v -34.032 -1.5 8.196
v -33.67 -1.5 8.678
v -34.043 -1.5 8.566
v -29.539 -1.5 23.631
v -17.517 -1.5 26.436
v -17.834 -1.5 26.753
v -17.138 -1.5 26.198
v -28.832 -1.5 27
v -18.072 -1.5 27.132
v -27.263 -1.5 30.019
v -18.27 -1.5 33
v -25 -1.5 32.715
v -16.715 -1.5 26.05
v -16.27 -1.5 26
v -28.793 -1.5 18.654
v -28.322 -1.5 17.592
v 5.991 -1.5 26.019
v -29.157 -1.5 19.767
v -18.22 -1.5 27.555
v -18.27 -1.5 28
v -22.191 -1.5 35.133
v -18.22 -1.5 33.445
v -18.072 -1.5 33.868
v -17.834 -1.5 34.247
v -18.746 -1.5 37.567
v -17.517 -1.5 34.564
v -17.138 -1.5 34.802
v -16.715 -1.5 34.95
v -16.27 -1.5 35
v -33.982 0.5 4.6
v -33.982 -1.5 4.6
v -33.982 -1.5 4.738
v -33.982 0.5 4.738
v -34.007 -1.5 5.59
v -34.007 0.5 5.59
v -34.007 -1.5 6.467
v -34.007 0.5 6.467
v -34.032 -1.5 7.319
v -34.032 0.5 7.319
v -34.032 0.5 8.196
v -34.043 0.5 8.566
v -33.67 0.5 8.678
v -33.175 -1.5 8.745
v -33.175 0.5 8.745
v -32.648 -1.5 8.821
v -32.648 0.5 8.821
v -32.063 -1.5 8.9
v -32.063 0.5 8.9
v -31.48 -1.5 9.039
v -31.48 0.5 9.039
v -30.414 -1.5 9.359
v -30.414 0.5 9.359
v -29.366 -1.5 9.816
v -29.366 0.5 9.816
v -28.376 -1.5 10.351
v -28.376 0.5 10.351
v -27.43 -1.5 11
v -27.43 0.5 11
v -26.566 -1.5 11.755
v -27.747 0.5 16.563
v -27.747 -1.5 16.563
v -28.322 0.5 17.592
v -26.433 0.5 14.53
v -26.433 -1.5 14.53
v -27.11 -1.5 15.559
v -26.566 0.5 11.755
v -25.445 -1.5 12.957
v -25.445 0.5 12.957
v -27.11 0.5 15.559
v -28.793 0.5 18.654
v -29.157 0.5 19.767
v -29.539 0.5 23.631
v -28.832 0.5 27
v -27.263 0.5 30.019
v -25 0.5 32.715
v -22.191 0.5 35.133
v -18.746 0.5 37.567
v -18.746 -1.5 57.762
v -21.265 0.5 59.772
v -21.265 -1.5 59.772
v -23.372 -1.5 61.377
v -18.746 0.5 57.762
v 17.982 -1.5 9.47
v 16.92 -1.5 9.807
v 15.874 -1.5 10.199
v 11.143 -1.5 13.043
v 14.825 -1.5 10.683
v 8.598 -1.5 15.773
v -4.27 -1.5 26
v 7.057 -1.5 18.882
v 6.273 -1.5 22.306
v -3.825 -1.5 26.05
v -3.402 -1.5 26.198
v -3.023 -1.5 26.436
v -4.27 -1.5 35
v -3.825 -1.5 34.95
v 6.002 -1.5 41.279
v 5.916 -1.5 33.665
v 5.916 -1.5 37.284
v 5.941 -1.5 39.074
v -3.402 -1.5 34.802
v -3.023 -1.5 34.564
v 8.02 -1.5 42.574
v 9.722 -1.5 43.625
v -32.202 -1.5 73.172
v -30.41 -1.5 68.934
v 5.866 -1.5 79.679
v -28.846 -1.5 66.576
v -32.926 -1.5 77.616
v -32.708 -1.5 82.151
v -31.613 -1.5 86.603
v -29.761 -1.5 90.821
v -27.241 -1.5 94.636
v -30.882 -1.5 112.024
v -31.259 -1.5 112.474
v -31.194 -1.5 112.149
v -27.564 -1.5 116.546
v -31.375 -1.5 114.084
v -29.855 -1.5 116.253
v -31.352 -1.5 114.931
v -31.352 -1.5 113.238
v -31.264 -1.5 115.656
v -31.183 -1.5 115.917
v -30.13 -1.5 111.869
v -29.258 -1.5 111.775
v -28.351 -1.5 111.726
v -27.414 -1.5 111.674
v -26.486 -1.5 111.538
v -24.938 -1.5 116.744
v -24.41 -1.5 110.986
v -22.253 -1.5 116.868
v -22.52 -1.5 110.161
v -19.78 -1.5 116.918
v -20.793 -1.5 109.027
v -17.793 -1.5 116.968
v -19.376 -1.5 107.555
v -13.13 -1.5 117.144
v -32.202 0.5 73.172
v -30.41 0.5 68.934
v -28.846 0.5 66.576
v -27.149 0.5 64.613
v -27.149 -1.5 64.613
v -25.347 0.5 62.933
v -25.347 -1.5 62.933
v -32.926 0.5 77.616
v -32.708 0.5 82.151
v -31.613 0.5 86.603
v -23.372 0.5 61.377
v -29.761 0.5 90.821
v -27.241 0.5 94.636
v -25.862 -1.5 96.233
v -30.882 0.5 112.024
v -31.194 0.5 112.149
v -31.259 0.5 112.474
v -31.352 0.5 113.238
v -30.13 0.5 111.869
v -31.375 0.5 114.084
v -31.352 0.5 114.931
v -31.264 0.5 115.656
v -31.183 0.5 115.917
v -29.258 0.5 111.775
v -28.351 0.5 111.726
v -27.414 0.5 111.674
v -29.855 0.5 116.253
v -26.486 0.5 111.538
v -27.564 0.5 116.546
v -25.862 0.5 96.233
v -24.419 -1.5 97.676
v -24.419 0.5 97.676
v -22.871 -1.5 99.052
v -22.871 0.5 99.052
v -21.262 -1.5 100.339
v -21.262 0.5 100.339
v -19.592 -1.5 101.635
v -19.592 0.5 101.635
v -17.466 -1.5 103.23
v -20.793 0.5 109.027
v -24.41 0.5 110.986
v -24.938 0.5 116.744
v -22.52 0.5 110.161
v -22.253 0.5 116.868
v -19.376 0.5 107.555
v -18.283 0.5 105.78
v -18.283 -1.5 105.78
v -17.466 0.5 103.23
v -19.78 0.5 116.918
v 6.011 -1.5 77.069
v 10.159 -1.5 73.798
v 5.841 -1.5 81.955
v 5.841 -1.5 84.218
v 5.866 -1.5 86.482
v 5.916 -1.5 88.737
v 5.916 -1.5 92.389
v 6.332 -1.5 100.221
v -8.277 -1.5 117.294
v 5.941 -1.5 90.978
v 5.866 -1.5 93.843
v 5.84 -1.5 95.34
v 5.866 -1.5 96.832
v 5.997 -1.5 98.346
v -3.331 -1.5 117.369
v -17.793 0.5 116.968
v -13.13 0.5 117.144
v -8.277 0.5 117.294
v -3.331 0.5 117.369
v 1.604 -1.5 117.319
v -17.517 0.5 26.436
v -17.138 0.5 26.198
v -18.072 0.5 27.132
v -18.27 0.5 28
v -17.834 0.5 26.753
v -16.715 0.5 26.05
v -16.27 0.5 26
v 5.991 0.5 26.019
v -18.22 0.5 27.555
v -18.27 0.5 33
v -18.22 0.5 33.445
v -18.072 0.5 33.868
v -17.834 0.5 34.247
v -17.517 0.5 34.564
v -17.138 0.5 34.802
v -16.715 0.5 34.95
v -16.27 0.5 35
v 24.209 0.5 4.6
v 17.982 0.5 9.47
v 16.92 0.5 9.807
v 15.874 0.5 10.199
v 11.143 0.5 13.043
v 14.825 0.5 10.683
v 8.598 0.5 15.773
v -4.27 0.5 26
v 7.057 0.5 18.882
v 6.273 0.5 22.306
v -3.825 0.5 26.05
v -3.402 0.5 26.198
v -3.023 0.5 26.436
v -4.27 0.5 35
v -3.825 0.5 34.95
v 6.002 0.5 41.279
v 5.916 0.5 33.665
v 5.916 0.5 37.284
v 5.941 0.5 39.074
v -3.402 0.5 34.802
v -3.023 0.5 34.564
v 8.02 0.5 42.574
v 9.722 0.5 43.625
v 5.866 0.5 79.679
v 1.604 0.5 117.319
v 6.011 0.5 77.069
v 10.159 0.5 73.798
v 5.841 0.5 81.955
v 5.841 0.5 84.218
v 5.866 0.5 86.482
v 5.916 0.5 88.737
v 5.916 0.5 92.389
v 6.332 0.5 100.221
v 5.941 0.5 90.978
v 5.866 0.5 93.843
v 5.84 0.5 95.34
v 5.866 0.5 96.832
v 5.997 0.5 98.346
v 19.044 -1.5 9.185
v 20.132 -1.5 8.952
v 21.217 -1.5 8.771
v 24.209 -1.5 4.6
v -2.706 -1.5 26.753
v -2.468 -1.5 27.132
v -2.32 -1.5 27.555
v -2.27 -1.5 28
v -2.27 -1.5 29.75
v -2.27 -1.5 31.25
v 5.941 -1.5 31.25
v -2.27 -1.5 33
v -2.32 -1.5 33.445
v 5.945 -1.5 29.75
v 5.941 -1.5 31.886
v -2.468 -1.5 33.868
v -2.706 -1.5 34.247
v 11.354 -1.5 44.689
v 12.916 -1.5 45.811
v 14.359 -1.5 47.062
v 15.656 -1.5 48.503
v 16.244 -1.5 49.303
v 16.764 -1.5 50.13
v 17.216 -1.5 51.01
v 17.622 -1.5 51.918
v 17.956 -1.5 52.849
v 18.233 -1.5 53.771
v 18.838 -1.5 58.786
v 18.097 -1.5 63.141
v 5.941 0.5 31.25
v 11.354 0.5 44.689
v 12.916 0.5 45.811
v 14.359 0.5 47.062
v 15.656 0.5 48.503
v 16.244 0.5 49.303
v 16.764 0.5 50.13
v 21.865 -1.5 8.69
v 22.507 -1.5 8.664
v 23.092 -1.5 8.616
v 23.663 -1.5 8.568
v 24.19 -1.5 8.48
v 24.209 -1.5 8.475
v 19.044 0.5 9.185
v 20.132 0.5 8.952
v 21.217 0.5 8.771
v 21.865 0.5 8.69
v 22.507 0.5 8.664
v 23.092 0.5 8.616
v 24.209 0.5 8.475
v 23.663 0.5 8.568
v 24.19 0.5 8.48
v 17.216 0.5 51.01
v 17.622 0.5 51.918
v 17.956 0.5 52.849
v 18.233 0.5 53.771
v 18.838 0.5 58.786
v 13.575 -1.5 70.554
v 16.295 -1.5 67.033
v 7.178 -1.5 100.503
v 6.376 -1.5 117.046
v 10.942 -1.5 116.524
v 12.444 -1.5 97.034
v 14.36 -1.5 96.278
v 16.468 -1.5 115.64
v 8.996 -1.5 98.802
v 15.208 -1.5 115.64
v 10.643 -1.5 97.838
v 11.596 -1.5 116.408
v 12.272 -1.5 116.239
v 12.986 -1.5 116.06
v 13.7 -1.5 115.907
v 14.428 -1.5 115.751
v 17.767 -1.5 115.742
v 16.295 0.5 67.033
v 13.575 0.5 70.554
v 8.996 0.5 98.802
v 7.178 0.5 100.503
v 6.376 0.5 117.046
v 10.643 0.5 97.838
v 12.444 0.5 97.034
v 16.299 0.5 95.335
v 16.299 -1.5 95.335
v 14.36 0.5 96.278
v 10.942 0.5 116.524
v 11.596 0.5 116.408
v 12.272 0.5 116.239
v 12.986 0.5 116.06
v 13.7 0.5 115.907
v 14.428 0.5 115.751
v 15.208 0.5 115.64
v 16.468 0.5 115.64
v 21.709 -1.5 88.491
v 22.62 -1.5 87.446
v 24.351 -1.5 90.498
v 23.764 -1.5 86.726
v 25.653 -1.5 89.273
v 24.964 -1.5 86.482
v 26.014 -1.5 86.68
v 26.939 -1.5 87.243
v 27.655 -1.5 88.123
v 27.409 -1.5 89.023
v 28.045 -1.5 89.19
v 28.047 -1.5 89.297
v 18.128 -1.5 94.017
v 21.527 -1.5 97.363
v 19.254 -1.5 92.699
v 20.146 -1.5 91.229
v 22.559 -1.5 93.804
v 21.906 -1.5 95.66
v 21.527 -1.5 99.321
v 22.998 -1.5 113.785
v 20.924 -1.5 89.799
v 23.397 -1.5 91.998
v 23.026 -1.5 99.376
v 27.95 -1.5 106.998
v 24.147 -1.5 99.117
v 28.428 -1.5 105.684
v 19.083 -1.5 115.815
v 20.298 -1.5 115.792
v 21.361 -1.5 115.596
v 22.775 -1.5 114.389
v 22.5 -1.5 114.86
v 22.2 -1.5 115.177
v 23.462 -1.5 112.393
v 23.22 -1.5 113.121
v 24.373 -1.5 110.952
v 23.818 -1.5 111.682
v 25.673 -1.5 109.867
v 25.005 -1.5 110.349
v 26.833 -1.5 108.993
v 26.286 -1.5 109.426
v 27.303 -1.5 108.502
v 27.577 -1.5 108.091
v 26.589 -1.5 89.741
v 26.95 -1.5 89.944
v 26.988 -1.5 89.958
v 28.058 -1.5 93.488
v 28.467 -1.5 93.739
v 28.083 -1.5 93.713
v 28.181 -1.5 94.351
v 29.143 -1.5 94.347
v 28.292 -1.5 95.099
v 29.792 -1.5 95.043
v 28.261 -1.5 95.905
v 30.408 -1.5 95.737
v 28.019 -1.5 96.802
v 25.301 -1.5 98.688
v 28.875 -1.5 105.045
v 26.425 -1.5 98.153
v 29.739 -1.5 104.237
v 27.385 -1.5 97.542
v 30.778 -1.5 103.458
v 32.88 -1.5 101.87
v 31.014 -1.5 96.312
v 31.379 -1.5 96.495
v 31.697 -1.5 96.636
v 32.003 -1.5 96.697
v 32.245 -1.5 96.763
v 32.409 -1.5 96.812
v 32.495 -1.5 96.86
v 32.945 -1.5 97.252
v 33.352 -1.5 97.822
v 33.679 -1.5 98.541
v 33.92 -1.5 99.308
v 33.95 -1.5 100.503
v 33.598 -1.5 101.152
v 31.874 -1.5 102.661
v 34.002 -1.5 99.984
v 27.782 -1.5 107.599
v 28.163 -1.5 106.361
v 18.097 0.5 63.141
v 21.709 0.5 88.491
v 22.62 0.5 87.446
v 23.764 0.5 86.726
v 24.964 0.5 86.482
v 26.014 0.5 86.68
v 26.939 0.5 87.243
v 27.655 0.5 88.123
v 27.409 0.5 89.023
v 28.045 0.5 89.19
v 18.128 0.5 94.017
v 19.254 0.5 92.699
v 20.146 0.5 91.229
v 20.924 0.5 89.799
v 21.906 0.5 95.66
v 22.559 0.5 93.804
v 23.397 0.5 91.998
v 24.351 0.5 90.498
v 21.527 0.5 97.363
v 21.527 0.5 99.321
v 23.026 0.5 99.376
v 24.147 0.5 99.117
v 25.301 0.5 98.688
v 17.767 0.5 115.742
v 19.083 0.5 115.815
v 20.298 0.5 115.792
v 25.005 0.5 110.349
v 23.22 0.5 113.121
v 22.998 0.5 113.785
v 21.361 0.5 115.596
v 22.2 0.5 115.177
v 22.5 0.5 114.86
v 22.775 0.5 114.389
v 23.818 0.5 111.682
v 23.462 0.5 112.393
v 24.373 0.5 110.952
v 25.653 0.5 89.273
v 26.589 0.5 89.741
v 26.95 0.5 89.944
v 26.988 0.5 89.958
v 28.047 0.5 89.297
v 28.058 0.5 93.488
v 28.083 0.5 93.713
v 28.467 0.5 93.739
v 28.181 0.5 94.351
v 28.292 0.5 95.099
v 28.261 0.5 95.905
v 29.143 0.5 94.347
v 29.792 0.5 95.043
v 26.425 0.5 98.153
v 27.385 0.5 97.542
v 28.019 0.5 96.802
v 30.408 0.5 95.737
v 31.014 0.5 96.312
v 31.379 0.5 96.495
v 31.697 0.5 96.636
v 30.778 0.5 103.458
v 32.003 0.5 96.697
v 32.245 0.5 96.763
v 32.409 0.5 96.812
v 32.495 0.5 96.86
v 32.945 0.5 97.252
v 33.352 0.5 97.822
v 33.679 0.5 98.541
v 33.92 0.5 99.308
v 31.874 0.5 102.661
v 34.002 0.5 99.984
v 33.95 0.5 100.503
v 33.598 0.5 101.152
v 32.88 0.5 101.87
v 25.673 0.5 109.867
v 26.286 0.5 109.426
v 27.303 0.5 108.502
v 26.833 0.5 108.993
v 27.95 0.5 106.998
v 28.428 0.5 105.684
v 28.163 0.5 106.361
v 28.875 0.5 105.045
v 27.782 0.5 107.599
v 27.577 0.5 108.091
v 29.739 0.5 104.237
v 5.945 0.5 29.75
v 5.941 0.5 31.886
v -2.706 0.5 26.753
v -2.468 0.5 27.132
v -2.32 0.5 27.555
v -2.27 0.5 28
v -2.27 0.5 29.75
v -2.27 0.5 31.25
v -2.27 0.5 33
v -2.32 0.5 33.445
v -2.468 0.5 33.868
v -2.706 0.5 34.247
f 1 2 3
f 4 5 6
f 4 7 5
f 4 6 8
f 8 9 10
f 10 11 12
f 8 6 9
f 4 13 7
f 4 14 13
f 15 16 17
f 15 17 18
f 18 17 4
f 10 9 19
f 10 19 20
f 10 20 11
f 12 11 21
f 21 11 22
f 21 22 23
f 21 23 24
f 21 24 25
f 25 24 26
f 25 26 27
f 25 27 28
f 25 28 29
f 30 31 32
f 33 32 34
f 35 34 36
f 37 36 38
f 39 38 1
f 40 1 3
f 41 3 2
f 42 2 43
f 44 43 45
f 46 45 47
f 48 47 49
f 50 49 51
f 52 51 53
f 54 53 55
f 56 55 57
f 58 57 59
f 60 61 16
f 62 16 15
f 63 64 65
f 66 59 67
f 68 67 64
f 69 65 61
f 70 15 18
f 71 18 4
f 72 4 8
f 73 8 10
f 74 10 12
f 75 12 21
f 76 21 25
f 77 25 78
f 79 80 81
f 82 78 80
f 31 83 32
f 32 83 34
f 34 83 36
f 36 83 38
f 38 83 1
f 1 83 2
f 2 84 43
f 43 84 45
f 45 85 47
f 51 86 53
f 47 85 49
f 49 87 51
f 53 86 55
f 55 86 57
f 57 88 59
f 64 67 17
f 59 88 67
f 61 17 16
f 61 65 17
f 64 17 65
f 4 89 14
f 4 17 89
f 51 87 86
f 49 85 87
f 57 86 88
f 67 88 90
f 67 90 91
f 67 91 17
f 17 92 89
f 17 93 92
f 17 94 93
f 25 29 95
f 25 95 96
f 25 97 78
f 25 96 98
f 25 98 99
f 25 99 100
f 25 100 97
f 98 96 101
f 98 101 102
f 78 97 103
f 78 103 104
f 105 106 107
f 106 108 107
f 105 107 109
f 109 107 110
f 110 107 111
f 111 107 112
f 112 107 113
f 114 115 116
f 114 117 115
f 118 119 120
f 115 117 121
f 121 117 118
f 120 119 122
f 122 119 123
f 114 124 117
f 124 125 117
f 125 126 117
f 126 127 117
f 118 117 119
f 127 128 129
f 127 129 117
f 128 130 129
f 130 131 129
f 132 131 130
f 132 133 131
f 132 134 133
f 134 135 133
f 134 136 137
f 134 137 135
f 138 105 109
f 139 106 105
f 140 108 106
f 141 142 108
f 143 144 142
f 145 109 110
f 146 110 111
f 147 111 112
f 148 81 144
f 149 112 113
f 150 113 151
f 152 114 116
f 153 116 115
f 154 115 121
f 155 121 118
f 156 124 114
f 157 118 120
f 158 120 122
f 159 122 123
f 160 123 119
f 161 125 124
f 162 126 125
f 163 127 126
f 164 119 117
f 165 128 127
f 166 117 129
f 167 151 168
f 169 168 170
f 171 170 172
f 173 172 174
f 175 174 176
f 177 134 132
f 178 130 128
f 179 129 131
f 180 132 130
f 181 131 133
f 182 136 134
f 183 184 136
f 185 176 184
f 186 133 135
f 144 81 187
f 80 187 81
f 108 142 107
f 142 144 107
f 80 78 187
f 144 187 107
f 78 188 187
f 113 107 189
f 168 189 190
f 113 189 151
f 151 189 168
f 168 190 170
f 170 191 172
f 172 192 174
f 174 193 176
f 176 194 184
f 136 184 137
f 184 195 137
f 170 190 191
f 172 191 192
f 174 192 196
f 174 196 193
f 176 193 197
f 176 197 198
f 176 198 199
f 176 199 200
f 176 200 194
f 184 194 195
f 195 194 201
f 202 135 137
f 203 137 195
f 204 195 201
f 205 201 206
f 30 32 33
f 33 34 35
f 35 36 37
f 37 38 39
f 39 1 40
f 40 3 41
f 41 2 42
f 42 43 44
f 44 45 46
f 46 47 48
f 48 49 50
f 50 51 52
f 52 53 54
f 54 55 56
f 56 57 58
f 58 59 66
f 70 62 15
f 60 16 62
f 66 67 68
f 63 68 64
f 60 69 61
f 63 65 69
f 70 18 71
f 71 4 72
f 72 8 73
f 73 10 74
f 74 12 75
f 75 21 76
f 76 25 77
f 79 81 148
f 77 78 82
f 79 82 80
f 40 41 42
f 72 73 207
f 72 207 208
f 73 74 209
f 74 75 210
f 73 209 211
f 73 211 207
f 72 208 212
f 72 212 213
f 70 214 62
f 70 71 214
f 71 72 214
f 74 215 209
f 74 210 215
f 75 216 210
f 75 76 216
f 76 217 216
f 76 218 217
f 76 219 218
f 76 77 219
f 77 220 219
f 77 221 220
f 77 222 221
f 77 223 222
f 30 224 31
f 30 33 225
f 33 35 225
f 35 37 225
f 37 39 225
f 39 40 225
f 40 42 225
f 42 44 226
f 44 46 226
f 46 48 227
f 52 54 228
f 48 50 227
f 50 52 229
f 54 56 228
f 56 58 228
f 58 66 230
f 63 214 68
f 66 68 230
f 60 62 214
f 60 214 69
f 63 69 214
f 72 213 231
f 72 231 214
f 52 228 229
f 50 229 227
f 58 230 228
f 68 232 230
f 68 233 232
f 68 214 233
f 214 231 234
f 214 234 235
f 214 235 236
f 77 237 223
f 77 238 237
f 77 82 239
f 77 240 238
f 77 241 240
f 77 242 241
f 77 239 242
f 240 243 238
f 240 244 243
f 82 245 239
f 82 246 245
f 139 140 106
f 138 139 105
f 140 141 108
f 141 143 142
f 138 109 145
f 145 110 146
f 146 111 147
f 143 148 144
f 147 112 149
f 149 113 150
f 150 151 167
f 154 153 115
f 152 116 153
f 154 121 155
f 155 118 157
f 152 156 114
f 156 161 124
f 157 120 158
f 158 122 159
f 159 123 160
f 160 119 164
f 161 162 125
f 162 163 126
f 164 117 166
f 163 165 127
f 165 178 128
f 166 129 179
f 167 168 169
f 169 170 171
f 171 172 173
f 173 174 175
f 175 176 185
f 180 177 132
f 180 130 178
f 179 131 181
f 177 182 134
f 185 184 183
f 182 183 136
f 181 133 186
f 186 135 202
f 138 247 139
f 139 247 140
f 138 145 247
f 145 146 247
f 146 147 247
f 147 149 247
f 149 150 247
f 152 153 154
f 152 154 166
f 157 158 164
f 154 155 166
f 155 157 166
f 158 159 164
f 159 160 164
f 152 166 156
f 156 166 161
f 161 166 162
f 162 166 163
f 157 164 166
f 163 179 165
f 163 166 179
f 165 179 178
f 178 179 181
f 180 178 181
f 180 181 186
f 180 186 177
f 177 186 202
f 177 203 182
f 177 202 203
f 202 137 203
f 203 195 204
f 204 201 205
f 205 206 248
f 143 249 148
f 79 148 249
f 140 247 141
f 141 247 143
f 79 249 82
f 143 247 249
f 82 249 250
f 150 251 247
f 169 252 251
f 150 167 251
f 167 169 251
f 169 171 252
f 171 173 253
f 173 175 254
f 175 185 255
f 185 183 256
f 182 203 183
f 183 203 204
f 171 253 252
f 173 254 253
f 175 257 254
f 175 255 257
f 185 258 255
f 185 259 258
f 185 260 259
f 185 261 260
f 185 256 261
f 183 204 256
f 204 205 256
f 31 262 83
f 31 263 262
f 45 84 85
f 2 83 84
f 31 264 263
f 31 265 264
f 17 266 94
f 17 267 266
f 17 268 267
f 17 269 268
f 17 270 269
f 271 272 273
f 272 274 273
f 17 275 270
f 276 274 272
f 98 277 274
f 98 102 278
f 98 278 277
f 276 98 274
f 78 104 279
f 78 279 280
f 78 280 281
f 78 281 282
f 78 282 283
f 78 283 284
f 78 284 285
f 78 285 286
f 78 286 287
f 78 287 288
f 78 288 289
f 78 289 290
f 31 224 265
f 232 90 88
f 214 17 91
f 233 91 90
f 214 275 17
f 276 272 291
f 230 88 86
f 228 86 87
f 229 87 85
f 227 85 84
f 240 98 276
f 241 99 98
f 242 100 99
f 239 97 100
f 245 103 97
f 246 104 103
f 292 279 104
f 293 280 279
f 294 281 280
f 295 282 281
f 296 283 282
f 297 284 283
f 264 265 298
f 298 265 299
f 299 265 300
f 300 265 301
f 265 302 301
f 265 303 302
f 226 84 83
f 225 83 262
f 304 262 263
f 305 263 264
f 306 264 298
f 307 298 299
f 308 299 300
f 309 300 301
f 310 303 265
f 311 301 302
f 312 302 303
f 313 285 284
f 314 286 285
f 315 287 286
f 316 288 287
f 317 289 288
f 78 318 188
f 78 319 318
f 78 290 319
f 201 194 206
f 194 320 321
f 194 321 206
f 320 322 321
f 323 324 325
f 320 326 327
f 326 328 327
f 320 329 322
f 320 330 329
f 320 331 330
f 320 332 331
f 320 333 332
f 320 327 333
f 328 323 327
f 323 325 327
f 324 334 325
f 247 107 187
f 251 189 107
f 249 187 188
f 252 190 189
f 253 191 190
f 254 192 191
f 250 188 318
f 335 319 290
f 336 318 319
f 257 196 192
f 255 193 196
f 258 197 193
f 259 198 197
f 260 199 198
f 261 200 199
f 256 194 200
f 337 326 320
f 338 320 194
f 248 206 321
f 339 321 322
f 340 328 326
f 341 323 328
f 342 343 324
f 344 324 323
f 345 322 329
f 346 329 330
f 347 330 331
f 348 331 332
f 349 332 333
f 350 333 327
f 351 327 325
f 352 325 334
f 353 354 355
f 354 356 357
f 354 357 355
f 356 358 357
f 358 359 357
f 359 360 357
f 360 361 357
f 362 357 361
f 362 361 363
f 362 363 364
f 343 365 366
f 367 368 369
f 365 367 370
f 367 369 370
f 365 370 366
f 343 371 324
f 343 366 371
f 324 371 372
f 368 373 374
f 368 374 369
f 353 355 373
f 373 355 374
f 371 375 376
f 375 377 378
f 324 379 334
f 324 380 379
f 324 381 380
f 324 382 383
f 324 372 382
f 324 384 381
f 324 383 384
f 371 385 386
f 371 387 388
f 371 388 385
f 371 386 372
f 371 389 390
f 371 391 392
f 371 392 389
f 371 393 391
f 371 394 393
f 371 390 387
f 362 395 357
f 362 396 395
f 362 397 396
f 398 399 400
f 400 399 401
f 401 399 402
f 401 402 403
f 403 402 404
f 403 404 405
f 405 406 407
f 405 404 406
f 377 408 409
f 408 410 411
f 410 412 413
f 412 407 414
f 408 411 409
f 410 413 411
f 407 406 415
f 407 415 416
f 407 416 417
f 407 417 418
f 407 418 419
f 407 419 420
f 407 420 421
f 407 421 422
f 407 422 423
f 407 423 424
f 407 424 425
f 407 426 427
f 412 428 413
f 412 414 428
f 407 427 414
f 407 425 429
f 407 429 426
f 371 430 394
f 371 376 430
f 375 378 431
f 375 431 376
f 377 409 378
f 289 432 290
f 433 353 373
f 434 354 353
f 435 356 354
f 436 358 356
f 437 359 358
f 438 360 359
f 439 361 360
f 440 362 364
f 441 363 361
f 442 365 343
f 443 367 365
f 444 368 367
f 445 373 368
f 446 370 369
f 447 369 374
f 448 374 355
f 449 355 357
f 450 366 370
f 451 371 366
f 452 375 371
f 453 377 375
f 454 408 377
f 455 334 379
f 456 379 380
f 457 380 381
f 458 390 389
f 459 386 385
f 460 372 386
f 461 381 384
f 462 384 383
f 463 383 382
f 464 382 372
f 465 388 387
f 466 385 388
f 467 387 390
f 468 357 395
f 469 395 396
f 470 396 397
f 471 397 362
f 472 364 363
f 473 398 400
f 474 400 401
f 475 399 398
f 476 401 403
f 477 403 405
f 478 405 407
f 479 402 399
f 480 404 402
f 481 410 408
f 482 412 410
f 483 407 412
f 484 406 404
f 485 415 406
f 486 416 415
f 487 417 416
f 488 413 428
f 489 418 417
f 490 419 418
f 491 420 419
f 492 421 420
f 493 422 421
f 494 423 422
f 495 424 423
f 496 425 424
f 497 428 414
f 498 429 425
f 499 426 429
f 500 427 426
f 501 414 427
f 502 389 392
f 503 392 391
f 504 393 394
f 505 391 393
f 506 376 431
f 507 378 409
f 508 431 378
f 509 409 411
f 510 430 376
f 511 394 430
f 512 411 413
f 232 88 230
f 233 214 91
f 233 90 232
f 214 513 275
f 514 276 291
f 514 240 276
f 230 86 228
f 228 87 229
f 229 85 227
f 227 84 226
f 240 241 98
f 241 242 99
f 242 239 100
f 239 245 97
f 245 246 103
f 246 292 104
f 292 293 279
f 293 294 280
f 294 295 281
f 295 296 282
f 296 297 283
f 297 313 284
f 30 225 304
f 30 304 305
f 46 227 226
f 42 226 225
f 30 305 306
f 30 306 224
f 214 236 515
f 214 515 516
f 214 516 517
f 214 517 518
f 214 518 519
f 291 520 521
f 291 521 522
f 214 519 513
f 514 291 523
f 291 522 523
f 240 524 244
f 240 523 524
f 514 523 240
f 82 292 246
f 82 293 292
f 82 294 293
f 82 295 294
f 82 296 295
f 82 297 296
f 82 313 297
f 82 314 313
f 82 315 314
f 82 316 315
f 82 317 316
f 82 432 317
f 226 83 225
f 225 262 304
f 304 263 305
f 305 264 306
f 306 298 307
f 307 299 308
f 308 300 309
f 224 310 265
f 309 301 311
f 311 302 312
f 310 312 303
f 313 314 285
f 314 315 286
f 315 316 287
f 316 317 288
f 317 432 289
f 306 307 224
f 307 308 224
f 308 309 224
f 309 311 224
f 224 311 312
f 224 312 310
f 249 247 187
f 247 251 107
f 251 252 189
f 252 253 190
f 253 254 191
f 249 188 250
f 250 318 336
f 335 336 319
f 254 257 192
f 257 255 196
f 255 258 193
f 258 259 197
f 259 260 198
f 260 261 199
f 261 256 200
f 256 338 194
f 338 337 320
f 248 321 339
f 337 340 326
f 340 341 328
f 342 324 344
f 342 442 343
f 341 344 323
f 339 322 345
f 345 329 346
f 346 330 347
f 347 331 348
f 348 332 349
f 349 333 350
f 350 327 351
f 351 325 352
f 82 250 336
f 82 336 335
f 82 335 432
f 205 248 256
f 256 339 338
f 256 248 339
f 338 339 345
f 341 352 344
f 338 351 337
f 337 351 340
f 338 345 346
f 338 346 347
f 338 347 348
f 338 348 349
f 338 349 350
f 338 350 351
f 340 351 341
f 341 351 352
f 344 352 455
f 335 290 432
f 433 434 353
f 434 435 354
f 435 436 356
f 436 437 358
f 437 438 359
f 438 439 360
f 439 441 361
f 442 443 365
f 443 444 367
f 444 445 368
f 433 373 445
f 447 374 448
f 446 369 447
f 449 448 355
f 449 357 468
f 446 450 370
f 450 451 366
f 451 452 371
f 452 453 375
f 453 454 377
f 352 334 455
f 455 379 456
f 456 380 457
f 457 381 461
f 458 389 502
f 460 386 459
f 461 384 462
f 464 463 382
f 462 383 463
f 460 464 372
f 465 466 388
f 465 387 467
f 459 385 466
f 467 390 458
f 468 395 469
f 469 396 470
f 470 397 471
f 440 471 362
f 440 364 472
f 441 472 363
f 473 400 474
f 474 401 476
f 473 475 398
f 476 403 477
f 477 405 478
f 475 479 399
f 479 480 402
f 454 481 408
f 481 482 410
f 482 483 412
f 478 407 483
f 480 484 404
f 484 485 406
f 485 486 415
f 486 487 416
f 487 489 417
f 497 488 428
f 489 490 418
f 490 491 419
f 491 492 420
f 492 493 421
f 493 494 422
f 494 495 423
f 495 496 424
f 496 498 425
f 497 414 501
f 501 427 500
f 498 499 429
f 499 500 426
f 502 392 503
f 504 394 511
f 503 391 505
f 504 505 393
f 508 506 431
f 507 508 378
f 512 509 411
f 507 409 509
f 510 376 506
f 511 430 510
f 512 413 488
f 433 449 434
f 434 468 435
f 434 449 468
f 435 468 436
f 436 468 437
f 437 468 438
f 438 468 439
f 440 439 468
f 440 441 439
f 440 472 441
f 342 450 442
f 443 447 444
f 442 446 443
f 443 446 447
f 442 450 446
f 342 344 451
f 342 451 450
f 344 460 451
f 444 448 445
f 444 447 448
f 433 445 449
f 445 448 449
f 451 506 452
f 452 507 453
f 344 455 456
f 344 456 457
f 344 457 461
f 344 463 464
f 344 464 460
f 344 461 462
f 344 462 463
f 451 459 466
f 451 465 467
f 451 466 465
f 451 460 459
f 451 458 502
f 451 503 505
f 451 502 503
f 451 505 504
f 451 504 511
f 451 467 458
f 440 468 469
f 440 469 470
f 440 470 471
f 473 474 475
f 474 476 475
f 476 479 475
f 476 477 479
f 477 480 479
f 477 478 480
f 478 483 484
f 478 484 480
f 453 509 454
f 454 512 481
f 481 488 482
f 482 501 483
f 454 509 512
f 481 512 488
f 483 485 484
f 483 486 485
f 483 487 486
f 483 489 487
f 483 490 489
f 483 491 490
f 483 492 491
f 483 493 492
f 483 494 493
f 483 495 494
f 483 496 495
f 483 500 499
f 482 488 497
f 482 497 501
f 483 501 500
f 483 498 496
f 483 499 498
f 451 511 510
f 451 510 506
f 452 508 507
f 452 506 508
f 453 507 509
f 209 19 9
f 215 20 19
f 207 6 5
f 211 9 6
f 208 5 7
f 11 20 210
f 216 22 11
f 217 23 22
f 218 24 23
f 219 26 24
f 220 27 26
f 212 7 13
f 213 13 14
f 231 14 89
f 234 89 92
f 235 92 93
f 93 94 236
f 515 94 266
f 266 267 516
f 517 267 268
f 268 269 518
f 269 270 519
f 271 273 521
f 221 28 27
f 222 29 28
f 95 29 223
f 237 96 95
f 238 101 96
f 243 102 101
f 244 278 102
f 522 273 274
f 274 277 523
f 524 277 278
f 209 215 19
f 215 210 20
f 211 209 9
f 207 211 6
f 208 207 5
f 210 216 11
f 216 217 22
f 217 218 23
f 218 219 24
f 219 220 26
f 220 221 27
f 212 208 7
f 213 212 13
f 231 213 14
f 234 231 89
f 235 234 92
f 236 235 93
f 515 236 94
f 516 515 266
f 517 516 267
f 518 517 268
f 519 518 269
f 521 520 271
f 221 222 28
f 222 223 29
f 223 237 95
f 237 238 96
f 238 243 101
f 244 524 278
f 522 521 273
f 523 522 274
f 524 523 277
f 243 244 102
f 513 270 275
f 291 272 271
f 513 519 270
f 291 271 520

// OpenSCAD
// file: ../I_trace_pts.scad
// Outer silhouette of the snake "I", traced from images/snake-trace-sheet (1).svg (subpath 166).
// Raw SVG coordinates (y down). letters/I.scad maps them into the glyph box.
I_trace_pts = [
[348.5,237.4],[348.4,234.9],[348.7,232.2],[349.1,229.6],[349.5,226.9],[349.4,224.3],[348.7,221.7],[346.9,219.6],[343.6,217.5],[339.4,215.5],[335.1,213.9],[331.2,213.0],[328.5,213.1],[328.5,217.7],[329.9,224.0],[332.4,231.1],[335.6,238.0],[339.1,243.5],[342.5,246.7],[344.3,245.8],[345.9,244.9],[347.3,244.4],[348.5,244.4],[349.6,245.4],[350.5,247.4],[351.2,247.1],[351.9,246.8],[352.6,246.5],[353.2,246.2],[353.9,245.8],[354.6,245.5],[354.5,251.2],[352.6,256.4],[349.1,260.7],[344.5,263.5],[339.2,264.5],[333.3,263.3],[327.9,259.9],[323.8,255.2],[320.5,249.7],[317.4,244.0],[314.0,238.4],[309.9,233.6],[303.1,228.7],[295.7,225.1],[288.1,222.1],[280.7,218.8],[273.7,214.7],[267.5,208.9],[266.5,214.5],[266.0,220.3],[265.9,226.1],[266.0,232.0],[266.2,237.8],[266.3,243.5],[266.2,252.5],[266.0,261.5],[265.9,270.5],[265.9,279.5],[266.0,288.5],[266.5,297.5],[282.1,309.8],[296.0,323.0],[307.2,337.5],[314.7,353.7],[317.8,371.9],[315.3,392.6],[314.1,396.6],[312.7,400.5],[311.0,404.3],[309.1,408.0],[306.9,411.5],[304.4,414.9],[299.0,420.9],[293.0,426.1],[286.6,430.7],[280.0,435.0],[273.2,439.2],[266.5,443.5],[266.3,450.7],[266.2,457.8],[266.2,465.0],[266.2,472.2],[266.3,479.3],[266.3,486.5],[266.5,502.6],[267.6,517.1],[270.6,530.2],[276.4,541.9],[286.0,552.2],[300.2,561.3],[304.1,563.1],[308.1,564.6],[312.2,565.9],[316.3,567.0],[320.5,567.9],[324.7,568.6],[327.1,568.9],[329.6,569.0],[332.0,569.2],[334.4,569.4],[336.8,569.8],[339.2,570.5],[339.2,573.9],[339.2,577.4],[339.2,580.8],[339.2,584.3],[339.2,587.7],[339.2,591.2],[299.5,591.2],[259.8,591.2],[220.1,591.2],[180.4,591.2],[140.7,591.2],[101.0,591.2],[101.0,587.7],[100.9,584.3],[100.9,580.8],[100.8,577.4],[100.8,573.9],[100.7,570.5],[102.6,569.6],[104.6,569.0],[106.8,568.7],[108.9,568.4],[111.1,568.1],[113.2,567.6],[117.2,566.4],[121.1,564.7],[124.8,562.7],[128.3,560.3],[131.5,557.5],[134.3,554.5],[131.6,550.2],[128.9,546.1],[126.3,542.0],[123.9,537.7],[121.9,533.2],[120.3,528.3],[118.7,512.1],[121.7,497.8],[128.3,485.1],[137.7,473.9],[149.2,464.0],[161.8,455.1],[161.8,442.2],[161.8,429.3],[161.8,416.3],[161.8,403.4],[161.8,390.4],[161.8,377.5],[152.9,370.4],[144.5,364.0],[136.5,357.7],[129.1,350.8],[122.1,342.7],[115.6,332.9],[108.2,315.4],[105.2,297.0],[106.1,278.3],[110.6,260.0],[118.2,242.7],[128.5,227.1],[134.2,220.5],[140.1,214.6],[146.4,209.0],[152.9,203.8],[159.6,198.6],[166.4,193.5],[163.9,185.7],[159.9,179.2],[154.7,173.8],[148.3,169.6],[141.2,166.5],[133.3,164.4],[129.9,163.9],[126.3,163.7],[122.6,163.5],[118.9,163.1],[115.5,162.4],[112.5,161.2],[111.9,158.2],[111.5,154.9],[111.4,151.3],[111.5,147.7],[111.9,144.4],[112.8,141.5],[119.9,139.7],[129.3,138.5],[139.9,137.7],[150.7,137.2],[160.6,137.0],[168.5,136.8],[187.1,136.1],[206.5,135.5],[226.3,135.2],[246.1,135.4],[265.3,136.5],[283.7,138.6],[286.5,139.1],[289.3,139.8],[292.1,140.5],[294.9,141.1],[297.7,141.7],[300.5,142.1],[305.2,142.1],[310.3,141.7],[315.7,141.4],[320.9,141.5],[325.8,142.4],[330.0,144.5],[331.8,146.4],[333.2,148.8],[334.2,151.5],[335.1,154.2],[336.0,156.9],[337.2,159.3],[339.1,161.8],[341.3,163.9],[343.8,165.7],[346.3,167.5],[348.7,169.4],[350.9,171.7],[352.3,173.8],[353.3,176.2],[354.0,178.7],[354.8,181.1],[355.7,183.4],[357.1,185.4],[360.2,188.3],[364.2,191.3],[368.6,194.5],[372.8,197.8],[376.1,201.1],[378.0,204.6],[378.3,207.6],[377.9,210.9],[376.8,214.4],[375.3,217.7],[373.3,220.5],[371.0,222.5],[370.1,223.0],[369.1,223.3],[368.0,223.6],[367.0,223.8],[366.1,224.2],[365.1,224.7],[363.1,226.6],[360.7,229.3],[358.0,232.2],[355.0,234.9],[351.9,236.8]
];
// file: ../flame.scad
// Flame end-piece from the logo: bulbous base, tongue rising to a tip on the left.
// FR is the same flame mirrored, so the word is bracketed symmetrically.
// Left flame outline in a unit box (x: 0..1 across, y: 0..1 up), traced from the logo.
flame_pts = [
    [0.6364, 1.0000], [0.5966, 0.9713], [0.5795, 0.9395], [0.5455, 0.9013], [0.4886, 0.8631],
    [0.4545, 0.8503], [0.4034, 0.8408], [0.2614, 0.8376], [0.1534, 0.8217], [0.1080, 0.8057],
    [0.0568, 0.7771], [0.0170, 0.7389], [0.0000, 0.6943], [0.0000, 0.6306], [0.0284, 0.5573],
    [0.0966, 0.4968], [0.1989, 0.4236], [0.2386, 0.3790], [0.2500, 0.3503], [0.2443, 0.3248],
    [0.2159, 0.2898], [0.0966, 0.2134], [0.0966, 0.2038], [0.1250, 0.1656], [0.1761, 0.1306],
    [0.2443, 0.0987], [0.3295, 0.0732], [0.3182, 0.0701], [0.3920, 0.0510], [0.5057, 0.0287],
    [0.6307, 0.0127], [0.7727, 0.0032], [0.9886, 0.0032], [0.9943, 0.0127], [0.8977, 0.0478],
    [0.7670, 0.1242], [0.6932, 0.1879], [0.6932, 0.2038], [0.6648, 0.2420], [0.6648, 0.3089],
    [0.6989, 0.3758], [0.7330, 0.4172], [0.7330, 0.4459], [0.6648, 0.5127], [0.6477, 0.5414],
    [0.6477, 0.5828], [0.6989, 0.6497], [0.7784, 0.7197], [0.7784, 0.7389], [0.7443, 0.7420],
    [0.7159, 0.7261], [0.6250, 0.6369], [0.5795, 0.6083], [0.5227, 0.5860], [0.4545, 0.5828],
    [0.4205, 0.5924], [0.3750, 0.6178], [0.3409, 0.6561], [0.4034, 0.7484], [0.4716, 0.8057],
    [0.5625, 0.8694], [0.6420, 0.9459], [0.6591, 0.9904], [0.6477, 1.0000]
];

function flame_points(w, h) = [for (p = flame_pts) [p[0] * w, p[1] * h]];

module flame_2d(w, h, pts = flame_points(w, h)) {
    polygon(pts);
}

flame_2d(170, 2 * 180);  // preview when opened directly; ignored by `use`
// file: ../I.scad
include <glyph_params.scad>
include <I_trace_pts.scad>

// I: the snake silhouette traced from images/snake-trace-sheet (1).svg (I_trace_pts).
// Scaled to the logo's snake height (263px over the 145px letter height), centred on x,
// base on the baseline (y = 0) and head above the cap line.
function logo_i_points() = I_trace_pts;

module logo_i_2d(pts = logo_i_points()) {
    s = letter_h * 263 / 145 / 456;           // 456 = traced snake height in SVG units
    translate([glyph_w("I") / 2, 0]) scale([s, -s]) translate([-(101.0 + 378.2) / 2, -591.2]) polygon(pts);
}

// Preview in the lamp's orientation: glyph in XZ, thickness along Y. Ignored by `use`.
rotate([90, 0, 0]) linear_extrude(height = 10, center = true)
    translate([-glyph_w("I") / 2, -letter_h / 2]) logo_i_2d();
// file: ../S.scad
include <glyph_params.scad>

// S: bold five-bar S with squared terminals.
module logo_s_2d() {
    w = glyph_w("S");
    mid = letter_h / 2;
    union() {
        translate([0, letter_h - stroke]) square([w, stroke]);
        translate([0, mid]) square([stroke, mid]);
        translate([0, mid - stroke / 2]) square([w, stroke]);
        translate([w - stroke, 0]) square([stroke, mid]);
        square([w, stroke]);
    }
}

logo_s_2d();  // preview when opened directly; ignored by `use`
// file: ../g.scad
include <glyph_params.scad>

// Single-storey g traced from the logo's lowercase g (unit box, v up).
g_outer_pts = [
    [0.9692, 1.0000], [0.3077, 1.0000], [0.1077, 0.9658], [0.0462, 0.9247], [0.0000, 0.7671],
    [0.0000, 0.4863], [0.0462, 0.3630], [0.1538, 0.3082], [0.2615, 0.2945], [0.5846, 0.2877],
    [0.6615, 0.2534], [0.6154, 0.2055], [0.5077, 0.1575], [0.3538, 0.1370], [0.1692, 0.1301],
    [0.1692, 0.0068], [0.4154, 0.0068], [0.6154, 0.0274], [0.7846, 0.0753], [0.9385, 0.1644],
    [0.9846, 0.3356]
];
g_counter_pts = [
    [0.3846, 0.8630], [0.6154, 0.8630], [0.6462, 0.8493], [0.6462, 0.4384], [0.6154, 0.4247],
    [0.3846, 0.4247], [0.3231, 0.4726], [0.3231, 0.8151], [0.3385, 0.8425]
];

function logo_g_points() =
    [for (p = concat(g_outer_pts, g_counter_pts)) [p[0] * glyph_w("g"), p[1] * letter_h]];

module logo_g_2d(pts = logo_g_points()) {
    n_out = len(g_outer_pts);
    n_in = len(g_counter_pts);
    polygon(
        points = pts,
        paths = [[for (i = [0 : n_out - 1]) i], [for (i = [n_out : n_out + n_in - 1]) i]]
    );
}

logo_g_2d();  // preview when opened directly; ignored by `use`
// file: ../N.scad
include <glyph_params.scad>

// n: rounded-top arch with two open-bottomed legs.
module logo_n_2d() {
    w = glyph_w("N");
    r = 0.38 * w;
    ri = r - stroke;
    difference() {
        hull() {
            square([w, 1]);
            translate([r, letter_h - r]) circle(r);
            translate([w - r, letter_h - r]) circle(r);
        }
        hull() {
            translate([stroke, -1]) square([w - 2 * stroke, 2]);
            translate([stroke + ri, letter_h - stroke - ri]) circle(ri);
            translate([w - stroke - ri, letter_h - stroke - ri]) circle(ri);
        }
    }
}

logo_n_2d();  // preview when opened directly; ignored by `use`
// file: ../E.scad
include <glyph_params.scad>

// E: solid left stem with three arms; the middle arm is slightly shorter.
module logo_e_2d() {
    w = glyph_w("E");
    union() {
        square([stroke, letter_h]);
        square([w, stroke]);
        translate([0, letter_h - stroke]) square([w, stroke]);
        translate([0, letter_h / 2 - stroke / 2]) square([w * 0.9, stroke]);
    }
}

logo_e_2d();  // preview when opened directly; ignored by `use`
// file: ../glyph_params.scad
// Shared glyph sizing, included by engenesis_lamp.scad and every letters/*.scad file.

letter_h = 180;                   // glyph height
stroke = 36;                      // bold stroke, matching the reference's heavy letterforms
round_r = 10;                     // small logo-style rounding on n, g and S
flame_h = 2 * letter_h;           // flames rise above and below the letters, as in the logo

function glyph_w(g) = g == "E" ? 130 : g == "N" ? 140 : g == "g" ? 80 : g == "S" ? 140 : g == "I" ? 210 : (g == "FL" || g == "FR") ? 170 : 50;
// main file
// Snake "I" internal reflector plate (white, rests on internal standoff pillars and ridge lip).
// Opens and exports standalone in OpenSCAD / OpenSCAD.js.

use <../../engenesis_lamp.scad>

render_part("letter_reflector", "I");
